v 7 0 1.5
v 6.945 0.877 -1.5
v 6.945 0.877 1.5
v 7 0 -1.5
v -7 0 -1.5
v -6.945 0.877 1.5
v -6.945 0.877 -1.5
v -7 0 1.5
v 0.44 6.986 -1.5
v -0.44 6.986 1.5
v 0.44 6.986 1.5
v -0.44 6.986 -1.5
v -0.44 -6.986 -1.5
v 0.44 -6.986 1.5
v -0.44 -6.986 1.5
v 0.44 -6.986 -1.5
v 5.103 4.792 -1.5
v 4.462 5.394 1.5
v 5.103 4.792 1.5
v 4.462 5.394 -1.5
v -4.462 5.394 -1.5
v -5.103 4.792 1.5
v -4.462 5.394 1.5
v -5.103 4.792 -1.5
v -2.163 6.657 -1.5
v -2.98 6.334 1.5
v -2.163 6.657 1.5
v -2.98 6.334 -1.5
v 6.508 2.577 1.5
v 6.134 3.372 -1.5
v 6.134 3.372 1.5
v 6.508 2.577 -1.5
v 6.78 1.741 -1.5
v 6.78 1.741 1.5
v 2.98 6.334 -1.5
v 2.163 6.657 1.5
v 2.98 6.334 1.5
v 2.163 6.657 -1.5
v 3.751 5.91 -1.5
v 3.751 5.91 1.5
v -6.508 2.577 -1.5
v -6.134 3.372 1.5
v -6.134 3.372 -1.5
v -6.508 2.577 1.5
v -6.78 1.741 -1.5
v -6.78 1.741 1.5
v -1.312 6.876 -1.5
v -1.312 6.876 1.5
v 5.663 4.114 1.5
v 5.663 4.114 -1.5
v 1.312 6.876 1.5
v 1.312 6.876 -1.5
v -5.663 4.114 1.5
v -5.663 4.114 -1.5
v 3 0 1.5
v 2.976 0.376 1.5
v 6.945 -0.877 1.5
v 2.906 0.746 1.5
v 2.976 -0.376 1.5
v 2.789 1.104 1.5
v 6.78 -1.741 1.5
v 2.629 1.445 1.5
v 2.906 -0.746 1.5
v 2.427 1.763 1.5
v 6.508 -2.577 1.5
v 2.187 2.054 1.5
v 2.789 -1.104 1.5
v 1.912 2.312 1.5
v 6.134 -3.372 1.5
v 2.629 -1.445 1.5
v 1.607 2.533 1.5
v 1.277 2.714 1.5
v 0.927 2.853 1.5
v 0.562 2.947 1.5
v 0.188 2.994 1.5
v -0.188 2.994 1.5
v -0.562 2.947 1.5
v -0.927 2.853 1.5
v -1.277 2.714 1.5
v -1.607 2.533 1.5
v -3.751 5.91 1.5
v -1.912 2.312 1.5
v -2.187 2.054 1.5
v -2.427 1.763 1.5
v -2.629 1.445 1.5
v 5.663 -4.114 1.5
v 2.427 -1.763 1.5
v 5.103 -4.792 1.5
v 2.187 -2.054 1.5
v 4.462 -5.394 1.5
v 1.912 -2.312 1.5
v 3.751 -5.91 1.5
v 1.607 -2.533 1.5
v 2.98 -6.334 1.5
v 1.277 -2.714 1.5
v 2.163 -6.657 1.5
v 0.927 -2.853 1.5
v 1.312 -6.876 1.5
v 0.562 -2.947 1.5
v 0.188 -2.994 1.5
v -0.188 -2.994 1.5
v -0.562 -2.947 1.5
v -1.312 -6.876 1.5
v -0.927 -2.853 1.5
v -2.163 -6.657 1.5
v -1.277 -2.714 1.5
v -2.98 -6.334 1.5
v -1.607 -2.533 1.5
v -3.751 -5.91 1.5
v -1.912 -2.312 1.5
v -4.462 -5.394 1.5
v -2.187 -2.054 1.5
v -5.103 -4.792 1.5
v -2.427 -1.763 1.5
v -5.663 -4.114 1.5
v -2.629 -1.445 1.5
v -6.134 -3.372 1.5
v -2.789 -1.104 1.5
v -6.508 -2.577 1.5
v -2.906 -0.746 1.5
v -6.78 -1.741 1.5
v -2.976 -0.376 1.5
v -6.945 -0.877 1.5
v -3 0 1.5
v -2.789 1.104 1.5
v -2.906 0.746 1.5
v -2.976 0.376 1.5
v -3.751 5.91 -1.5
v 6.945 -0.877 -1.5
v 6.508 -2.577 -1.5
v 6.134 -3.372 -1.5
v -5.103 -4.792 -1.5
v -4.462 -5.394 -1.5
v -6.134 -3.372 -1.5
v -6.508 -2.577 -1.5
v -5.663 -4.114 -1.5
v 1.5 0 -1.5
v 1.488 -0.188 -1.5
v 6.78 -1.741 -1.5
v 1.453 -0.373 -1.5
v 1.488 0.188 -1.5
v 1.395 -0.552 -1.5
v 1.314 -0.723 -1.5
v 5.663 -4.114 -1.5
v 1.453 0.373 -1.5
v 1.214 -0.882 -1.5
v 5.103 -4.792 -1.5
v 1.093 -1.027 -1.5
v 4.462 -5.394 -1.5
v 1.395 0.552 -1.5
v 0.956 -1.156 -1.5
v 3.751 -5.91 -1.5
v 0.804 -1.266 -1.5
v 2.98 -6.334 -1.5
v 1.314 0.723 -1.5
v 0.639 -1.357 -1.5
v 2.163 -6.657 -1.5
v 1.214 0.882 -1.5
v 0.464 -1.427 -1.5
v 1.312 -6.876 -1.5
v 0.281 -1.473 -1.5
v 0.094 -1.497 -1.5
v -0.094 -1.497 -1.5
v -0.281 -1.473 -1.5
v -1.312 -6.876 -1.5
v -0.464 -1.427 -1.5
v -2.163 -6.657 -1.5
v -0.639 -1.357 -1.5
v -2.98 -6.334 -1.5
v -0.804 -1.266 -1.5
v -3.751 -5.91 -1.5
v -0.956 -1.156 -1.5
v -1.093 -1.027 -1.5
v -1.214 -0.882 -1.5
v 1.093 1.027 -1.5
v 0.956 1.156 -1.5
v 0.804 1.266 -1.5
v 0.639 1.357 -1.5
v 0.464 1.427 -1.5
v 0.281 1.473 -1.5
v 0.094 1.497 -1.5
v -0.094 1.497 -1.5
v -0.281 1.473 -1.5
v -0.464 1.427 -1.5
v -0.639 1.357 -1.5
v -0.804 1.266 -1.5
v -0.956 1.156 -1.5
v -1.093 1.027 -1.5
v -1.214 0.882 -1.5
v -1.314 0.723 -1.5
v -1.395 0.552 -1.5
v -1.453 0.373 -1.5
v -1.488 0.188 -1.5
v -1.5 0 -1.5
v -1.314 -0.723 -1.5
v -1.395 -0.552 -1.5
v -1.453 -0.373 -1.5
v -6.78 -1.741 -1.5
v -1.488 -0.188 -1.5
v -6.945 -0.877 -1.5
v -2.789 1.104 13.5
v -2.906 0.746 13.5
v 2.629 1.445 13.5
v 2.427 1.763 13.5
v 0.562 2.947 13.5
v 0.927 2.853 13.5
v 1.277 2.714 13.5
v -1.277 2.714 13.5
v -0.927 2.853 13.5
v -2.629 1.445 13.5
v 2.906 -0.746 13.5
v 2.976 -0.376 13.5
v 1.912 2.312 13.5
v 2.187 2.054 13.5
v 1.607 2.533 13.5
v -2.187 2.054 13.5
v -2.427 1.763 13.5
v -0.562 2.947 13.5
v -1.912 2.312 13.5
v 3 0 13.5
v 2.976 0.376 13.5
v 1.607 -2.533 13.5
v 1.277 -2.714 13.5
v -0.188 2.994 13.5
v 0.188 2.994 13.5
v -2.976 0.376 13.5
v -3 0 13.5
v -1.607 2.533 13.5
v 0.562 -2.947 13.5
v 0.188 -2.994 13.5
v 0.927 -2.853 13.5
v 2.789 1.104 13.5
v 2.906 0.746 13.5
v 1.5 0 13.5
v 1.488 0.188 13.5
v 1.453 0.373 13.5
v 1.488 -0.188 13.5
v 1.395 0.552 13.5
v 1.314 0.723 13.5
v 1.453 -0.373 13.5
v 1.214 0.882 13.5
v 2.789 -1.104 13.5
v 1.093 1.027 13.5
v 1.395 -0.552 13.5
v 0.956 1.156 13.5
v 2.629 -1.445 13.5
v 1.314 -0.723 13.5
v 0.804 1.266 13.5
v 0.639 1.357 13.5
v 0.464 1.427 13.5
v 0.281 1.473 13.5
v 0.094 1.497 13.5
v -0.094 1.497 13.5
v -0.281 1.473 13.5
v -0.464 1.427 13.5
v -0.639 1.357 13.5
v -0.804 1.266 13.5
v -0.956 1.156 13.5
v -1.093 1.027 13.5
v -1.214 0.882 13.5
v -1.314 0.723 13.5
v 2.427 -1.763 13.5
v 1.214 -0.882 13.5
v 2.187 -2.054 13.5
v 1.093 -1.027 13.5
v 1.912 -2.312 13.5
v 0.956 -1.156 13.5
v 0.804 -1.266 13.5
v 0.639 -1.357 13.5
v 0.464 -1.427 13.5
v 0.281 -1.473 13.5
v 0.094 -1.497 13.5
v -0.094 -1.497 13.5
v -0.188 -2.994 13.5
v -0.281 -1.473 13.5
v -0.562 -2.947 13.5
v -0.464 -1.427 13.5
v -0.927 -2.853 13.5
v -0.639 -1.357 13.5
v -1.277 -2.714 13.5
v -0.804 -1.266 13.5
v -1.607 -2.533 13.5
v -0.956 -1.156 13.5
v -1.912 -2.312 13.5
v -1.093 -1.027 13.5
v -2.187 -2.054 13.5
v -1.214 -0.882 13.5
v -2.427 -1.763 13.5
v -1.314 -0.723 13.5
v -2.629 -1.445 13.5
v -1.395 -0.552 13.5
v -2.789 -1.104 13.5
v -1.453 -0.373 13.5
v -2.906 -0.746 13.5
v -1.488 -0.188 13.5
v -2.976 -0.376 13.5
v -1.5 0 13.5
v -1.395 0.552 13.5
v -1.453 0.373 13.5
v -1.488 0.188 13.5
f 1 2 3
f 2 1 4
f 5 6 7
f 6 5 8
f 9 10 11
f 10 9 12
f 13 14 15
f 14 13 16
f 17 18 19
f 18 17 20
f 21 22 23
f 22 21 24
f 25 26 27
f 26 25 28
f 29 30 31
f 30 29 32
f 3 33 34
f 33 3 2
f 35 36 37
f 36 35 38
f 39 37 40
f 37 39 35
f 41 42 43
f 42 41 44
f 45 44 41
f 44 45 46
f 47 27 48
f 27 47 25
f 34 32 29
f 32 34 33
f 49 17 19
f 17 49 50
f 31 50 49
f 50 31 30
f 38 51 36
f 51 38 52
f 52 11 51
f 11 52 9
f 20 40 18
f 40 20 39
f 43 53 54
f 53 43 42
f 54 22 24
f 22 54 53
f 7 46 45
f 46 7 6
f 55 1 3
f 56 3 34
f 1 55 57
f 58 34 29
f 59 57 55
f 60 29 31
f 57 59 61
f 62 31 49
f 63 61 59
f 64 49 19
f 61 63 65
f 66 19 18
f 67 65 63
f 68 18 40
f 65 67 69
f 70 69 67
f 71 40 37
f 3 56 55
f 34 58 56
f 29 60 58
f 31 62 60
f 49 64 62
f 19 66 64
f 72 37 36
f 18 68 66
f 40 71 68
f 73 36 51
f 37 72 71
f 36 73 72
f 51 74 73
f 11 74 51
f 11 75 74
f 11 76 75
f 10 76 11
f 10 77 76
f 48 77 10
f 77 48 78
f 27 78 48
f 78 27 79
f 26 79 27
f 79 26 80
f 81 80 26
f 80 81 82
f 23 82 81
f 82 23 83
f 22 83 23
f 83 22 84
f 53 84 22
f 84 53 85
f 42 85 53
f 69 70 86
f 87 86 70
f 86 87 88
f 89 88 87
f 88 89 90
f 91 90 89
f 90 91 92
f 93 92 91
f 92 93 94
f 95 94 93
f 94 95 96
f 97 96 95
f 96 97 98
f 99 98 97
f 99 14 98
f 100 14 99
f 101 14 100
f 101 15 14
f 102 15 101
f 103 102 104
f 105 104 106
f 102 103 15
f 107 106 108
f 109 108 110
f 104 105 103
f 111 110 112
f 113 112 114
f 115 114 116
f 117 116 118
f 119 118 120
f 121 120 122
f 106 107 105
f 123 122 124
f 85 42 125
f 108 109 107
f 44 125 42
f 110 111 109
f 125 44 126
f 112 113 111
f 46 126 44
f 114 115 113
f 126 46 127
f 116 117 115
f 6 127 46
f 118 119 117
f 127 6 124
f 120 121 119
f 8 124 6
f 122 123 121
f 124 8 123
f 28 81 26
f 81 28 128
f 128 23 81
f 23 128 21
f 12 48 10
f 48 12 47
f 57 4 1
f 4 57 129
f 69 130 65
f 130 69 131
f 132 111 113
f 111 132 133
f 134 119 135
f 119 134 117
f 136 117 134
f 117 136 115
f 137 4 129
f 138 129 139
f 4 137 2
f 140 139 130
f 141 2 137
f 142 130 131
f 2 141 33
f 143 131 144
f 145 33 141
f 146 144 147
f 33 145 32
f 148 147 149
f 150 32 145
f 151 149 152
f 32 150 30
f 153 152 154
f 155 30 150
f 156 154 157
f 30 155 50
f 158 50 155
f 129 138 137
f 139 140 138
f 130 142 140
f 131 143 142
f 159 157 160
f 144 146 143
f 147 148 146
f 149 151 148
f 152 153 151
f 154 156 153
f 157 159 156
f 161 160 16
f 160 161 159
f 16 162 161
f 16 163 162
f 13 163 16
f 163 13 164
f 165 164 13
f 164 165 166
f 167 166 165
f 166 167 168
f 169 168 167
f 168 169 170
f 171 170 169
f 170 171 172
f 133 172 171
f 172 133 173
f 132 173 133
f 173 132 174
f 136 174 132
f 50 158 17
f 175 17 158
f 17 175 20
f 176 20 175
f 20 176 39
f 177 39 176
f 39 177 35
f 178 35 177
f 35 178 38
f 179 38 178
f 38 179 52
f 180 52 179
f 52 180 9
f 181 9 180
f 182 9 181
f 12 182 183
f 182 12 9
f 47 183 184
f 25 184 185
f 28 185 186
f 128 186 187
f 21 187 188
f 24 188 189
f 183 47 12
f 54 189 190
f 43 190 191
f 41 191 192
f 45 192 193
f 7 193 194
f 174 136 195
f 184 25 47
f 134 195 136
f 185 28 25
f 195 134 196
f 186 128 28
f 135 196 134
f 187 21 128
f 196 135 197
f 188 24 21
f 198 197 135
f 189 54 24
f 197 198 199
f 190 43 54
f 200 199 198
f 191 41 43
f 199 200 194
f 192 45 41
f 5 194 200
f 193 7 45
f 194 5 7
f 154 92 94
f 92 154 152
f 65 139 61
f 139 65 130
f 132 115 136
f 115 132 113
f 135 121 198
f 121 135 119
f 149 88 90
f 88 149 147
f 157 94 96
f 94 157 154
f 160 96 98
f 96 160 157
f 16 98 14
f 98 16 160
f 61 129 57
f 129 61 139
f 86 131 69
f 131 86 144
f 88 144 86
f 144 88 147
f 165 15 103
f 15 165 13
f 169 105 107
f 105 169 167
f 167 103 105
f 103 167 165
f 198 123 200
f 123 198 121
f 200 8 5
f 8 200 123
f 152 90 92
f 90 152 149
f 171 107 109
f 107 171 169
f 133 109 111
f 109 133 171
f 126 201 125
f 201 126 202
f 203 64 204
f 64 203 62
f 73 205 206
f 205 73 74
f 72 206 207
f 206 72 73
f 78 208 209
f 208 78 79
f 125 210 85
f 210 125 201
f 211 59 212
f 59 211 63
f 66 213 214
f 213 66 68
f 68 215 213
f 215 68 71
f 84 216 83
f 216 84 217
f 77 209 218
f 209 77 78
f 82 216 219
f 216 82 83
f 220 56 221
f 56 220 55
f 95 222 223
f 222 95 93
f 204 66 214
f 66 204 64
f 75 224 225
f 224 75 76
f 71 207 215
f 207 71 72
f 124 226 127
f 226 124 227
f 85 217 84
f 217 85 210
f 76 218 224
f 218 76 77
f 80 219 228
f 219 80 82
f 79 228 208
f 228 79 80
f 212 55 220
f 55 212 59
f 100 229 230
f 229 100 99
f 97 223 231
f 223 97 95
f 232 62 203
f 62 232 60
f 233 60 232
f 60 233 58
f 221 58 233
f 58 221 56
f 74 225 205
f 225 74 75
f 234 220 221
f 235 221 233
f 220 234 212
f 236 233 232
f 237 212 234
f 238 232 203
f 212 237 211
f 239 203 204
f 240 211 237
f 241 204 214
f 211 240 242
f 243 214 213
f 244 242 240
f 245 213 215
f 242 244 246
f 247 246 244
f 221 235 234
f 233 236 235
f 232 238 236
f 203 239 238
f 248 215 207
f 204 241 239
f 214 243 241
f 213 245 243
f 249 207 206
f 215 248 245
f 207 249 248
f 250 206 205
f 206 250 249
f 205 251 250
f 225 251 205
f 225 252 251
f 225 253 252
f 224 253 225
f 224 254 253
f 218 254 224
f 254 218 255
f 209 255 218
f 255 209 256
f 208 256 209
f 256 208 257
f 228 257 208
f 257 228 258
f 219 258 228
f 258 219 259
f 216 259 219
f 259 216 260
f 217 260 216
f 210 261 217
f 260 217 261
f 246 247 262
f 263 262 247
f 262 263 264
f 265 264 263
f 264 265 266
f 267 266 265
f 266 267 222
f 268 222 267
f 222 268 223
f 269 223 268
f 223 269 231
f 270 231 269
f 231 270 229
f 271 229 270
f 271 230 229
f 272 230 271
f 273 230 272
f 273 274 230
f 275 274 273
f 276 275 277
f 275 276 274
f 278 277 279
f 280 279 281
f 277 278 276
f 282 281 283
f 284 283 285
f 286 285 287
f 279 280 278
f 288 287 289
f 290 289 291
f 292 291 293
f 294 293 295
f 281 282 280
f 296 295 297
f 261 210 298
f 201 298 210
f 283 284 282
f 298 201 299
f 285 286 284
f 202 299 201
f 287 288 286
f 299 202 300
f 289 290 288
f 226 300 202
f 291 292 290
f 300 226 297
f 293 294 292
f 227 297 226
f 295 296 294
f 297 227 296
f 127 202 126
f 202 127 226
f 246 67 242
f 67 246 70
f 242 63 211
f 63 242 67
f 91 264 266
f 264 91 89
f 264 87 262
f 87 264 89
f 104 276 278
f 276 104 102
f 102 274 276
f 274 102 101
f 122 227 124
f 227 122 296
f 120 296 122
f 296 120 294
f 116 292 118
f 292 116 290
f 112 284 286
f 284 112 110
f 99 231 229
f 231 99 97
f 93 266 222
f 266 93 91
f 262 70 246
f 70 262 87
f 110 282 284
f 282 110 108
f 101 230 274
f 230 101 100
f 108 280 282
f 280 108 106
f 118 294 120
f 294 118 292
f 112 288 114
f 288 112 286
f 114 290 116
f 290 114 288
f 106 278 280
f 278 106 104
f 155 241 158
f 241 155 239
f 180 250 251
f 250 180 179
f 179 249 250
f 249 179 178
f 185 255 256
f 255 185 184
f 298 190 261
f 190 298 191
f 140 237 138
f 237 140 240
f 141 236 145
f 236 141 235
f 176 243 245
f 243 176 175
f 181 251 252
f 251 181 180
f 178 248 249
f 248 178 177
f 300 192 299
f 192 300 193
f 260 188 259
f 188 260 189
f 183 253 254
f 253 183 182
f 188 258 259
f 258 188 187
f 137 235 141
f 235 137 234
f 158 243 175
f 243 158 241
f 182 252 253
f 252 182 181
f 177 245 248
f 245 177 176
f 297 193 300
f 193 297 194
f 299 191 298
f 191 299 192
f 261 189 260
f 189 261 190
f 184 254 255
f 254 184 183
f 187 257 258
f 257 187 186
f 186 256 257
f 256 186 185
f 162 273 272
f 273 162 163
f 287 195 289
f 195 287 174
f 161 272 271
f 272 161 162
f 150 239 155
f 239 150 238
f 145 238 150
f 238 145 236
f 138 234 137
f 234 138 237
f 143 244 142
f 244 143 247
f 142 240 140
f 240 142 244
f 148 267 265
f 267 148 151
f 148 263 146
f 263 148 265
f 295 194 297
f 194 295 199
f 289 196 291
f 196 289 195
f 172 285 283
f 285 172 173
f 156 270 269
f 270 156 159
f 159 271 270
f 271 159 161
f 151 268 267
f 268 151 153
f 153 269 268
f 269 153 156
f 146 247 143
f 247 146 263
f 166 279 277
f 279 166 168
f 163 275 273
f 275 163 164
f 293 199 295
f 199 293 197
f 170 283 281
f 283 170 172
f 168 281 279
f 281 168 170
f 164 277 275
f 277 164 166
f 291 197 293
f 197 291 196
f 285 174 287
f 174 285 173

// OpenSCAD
$fn = 50;


difference() {
	union() {
		translate(v = [0, 0, -1.5000000000]) {
			cylinder(h = 3, r = 7.0000000000);
		}
		translate(v = [0, 0, -1.5000000000]) {
			cylinder(h = 15, r = 3.0000000000);
		}
	}
	union() {
		translate(v = [0, 0, -50.0000000000]) {
			cylinder(h = 100, r = 1.5000000000);
		}
	}
}
